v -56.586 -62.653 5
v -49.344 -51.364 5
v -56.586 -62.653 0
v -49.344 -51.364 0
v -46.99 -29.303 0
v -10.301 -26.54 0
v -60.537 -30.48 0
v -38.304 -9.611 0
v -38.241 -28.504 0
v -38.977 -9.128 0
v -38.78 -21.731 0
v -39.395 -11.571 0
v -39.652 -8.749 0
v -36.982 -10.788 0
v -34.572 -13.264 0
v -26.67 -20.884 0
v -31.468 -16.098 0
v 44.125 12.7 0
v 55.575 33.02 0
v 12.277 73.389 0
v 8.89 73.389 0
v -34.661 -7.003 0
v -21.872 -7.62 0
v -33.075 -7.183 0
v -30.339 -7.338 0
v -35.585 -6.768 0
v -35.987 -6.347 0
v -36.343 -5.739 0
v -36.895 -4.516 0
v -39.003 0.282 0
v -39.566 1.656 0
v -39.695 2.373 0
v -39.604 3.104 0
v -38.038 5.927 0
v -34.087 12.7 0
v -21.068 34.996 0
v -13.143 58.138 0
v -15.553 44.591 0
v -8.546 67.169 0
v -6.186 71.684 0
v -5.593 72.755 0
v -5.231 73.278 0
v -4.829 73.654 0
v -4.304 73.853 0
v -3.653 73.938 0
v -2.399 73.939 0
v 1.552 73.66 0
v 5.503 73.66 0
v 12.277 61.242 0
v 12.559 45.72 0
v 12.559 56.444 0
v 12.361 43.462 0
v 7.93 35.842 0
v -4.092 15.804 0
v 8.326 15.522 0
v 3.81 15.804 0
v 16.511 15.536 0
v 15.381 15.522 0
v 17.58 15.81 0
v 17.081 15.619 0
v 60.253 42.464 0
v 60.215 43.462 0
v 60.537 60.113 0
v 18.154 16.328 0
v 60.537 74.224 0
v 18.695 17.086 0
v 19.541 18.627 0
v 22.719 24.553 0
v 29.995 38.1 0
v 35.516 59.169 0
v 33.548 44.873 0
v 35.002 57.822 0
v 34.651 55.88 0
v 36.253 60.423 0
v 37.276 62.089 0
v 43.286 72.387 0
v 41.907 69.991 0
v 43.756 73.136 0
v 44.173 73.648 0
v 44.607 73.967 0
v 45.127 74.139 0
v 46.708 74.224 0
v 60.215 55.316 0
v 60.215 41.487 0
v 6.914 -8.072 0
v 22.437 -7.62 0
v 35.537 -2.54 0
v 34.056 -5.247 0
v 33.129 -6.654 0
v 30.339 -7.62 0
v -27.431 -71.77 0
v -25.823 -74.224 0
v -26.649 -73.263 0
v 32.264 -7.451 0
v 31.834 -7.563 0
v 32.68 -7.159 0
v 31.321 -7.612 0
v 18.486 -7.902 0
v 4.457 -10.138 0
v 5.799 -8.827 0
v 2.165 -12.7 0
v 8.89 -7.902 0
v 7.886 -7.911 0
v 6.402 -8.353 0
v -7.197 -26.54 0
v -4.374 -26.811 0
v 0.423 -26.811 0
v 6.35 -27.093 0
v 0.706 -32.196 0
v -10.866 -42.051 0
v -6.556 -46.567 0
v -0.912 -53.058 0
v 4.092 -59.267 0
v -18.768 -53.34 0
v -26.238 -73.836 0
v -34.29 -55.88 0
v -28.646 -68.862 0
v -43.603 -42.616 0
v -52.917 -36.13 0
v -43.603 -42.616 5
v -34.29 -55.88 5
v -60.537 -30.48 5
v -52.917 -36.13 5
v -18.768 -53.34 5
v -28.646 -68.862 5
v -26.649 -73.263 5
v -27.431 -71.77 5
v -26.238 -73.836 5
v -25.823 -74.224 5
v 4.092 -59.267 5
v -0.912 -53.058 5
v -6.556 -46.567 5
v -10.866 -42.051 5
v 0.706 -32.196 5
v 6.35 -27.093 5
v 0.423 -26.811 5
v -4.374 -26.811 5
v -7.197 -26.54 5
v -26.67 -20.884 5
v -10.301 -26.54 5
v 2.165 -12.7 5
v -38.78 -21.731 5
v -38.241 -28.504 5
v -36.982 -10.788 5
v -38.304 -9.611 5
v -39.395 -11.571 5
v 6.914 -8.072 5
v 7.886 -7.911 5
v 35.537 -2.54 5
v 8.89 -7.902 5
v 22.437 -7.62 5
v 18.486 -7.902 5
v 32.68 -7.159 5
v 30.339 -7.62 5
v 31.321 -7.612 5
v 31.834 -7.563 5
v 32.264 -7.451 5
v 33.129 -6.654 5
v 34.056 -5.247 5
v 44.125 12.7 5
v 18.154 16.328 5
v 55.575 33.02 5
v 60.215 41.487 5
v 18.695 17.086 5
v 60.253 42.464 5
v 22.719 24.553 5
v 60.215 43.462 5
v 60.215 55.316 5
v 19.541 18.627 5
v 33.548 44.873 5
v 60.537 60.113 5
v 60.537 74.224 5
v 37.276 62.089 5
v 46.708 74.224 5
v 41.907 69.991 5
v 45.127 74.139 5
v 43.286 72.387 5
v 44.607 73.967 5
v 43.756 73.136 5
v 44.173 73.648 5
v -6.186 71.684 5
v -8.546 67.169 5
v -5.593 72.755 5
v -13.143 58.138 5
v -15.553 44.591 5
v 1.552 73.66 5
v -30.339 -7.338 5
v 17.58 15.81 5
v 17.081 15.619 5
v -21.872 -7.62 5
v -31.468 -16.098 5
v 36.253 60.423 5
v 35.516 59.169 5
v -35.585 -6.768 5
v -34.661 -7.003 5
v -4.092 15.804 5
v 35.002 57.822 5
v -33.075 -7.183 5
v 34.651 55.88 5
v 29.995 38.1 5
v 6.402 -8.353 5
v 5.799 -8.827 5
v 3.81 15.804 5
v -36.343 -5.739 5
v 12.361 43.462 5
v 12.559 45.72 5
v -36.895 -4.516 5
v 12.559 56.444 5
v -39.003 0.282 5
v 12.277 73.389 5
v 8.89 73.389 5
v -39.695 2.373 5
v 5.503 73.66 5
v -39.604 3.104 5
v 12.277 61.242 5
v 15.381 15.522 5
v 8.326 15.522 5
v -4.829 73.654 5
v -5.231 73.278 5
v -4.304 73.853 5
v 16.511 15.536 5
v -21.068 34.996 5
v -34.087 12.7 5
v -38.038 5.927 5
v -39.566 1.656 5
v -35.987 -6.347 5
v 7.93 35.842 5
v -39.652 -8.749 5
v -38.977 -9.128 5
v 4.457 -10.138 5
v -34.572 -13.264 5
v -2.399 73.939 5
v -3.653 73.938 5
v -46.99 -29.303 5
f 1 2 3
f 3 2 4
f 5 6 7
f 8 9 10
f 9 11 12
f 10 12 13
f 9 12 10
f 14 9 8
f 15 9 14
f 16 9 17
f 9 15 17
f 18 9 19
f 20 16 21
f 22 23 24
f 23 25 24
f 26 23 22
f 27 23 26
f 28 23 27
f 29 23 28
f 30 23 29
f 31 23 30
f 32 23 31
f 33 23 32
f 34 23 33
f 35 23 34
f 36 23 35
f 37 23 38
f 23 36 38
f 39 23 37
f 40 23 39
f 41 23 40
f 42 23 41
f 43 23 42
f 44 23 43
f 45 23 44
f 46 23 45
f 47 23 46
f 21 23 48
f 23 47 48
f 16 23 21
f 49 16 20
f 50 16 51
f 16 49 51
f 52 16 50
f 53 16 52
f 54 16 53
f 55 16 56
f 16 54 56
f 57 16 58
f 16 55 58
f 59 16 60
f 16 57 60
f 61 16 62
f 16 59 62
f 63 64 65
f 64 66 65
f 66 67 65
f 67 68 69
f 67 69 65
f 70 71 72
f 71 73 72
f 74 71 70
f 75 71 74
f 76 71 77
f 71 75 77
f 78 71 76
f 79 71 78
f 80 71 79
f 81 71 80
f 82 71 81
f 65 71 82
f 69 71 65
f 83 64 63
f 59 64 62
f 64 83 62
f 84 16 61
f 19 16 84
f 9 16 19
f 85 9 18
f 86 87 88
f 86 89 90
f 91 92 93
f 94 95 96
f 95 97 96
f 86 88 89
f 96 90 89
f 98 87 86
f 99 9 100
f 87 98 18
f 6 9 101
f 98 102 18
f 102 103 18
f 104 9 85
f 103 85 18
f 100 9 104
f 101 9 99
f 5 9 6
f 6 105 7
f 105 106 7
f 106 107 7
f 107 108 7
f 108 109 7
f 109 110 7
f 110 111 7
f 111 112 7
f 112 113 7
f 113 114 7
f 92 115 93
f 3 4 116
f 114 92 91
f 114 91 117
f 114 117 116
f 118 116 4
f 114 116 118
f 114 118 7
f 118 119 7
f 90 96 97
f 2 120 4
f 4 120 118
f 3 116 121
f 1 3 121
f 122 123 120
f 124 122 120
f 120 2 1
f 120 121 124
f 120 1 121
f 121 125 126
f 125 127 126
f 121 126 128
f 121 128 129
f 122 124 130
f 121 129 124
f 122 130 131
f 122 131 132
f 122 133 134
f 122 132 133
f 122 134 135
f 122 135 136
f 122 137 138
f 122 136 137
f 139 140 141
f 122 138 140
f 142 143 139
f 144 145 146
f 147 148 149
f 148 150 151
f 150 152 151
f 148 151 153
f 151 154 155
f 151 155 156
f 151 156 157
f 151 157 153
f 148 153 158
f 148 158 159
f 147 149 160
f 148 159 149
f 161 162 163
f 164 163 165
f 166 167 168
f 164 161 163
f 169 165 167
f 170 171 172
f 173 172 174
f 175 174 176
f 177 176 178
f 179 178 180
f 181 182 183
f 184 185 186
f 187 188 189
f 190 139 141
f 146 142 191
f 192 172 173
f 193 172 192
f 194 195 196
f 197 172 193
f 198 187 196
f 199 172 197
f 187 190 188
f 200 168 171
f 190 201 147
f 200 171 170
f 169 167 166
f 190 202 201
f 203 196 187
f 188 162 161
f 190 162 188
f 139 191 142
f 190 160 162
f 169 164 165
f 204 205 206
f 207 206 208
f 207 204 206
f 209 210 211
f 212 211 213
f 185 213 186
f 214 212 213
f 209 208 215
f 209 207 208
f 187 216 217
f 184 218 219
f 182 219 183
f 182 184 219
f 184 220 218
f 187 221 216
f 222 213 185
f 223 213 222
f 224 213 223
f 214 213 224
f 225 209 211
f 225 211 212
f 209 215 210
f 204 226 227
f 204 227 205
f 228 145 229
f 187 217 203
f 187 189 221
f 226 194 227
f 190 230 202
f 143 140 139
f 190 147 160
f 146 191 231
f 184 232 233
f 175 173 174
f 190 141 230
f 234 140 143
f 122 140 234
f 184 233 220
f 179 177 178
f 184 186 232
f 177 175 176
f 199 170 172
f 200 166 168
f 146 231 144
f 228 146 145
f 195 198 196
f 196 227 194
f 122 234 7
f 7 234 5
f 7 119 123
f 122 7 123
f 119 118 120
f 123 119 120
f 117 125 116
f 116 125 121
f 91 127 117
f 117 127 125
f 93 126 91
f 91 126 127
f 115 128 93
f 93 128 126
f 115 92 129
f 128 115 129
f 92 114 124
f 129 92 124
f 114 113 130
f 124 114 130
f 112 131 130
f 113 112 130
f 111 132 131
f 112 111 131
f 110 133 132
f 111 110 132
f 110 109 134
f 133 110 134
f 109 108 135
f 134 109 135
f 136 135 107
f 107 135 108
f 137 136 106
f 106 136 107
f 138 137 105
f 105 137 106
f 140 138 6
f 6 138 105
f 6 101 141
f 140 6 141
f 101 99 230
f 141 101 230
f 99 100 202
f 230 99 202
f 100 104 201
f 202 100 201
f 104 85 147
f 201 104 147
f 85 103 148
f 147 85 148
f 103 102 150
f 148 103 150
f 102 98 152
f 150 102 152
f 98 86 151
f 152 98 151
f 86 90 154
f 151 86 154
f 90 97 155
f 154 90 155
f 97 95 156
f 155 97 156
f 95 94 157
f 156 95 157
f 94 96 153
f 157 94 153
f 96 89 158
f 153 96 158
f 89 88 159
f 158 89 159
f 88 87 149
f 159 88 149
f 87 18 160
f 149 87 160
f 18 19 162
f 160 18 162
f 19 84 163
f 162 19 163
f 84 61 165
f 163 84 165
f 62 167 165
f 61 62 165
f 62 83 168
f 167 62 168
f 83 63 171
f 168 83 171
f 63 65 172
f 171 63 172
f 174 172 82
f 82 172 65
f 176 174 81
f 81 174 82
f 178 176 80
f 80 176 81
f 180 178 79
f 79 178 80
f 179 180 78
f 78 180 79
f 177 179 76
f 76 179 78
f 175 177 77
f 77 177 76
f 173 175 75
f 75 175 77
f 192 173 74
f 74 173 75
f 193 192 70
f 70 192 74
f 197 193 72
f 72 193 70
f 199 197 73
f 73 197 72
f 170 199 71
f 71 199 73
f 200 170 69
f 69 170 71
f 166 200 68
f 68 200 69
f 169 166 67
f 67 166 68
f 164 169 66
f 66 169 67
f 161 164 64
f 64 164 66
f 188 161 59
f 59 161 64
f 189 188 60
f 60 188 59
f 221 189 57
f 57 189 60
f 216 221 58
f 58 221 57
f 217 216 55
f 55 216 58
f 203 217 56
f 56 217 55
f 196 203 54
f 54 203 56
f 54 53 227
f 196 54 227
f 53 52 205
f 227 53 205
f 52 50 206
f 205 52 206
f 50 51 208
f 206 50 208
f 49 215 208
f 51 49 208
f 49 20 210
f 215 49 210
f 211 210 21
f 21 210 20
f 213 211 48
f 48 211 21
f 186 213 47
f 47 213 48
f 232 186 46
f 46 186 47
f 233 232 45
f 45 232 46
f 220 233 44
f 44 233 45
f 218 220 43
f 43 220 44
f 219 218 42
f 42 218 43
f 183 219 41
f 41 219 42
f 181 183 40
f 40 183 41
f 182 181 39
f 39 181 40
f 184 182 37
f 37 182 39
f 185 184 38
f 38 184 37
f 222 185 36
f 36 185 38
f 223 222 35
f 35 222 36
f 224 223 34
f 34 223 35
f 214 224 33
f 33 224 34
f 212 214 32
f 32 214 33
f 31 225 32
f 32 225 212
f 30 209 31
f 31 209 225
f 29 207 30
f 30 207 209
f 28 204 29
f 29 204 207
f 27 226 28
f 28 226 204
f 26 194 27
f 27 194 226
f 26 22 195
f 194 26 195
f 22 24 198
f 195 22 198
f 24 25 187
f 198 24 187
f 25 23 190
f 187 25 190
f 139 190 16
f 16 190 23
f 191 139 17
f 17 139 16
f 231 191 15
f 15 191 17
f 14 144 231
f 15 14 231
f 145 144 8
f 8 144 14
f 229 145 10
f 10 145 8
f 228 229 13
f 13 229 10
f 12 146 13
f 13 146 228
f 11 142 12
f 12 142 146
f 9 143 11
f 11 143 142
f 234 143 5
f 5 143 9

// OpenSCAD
// Module names are of the form poly_<inkscape-path-id>().  As a result,
// you can associate a polygon in this OpenSCAD program with the corresponding
// SVG element in the Inkscape document by looking for the XML element with
// the attribute id="inkscape-path-id".

spurs(height=5);

module spurs(height)
{
  scale([25.4/90, -25.4/90, 1]) union()
  {
    linear_extrude(height=height)
      polygon([[13.500000,-56.000000],[29.500000,-55.000000],[54.500000,-55.000000],[58.503750,-55.048750],[60.522969,-55.341719],[62.290000,-56.020000],[64.325156,-57.853594],[66.241250,-60.541250],[69.240000,-66.000000],[80.500000,-87.000000],[106.280000,-135.000000],[118.870000,-159.000000],[122.780000,-198.000000],[124.023594,-204.882813],[125.843750,-209.652500],[128.457031,-214.095937],[132.080000,-220.000000],[148.490000,-248.000000],[153.376719,-256.487656],[155.041895,-259.143652],[156.518750,-260.956250],[158.055137,-262.086816],[159.898906,-262.696719],[165.500000,-263.000000],[214.500000,-263.000000],[214.500000,-213.000000],[213.360000,-196.000000],[213.360000,-154.000000],[213.495000,-150.462500],[213.360000,-147.000000],[196.920000,-117.000000],[156.350000,-45.000000],[125.920000,9.000000],[120.671250,18.592500],[117.385469,23.577187],[115.794199,25.366055],[114.320000,26.400000],[112.797344,26.797500],[110.981250,26.970000],[107.500000,27.000000],[79.500000,27.000000],[65.500000,28.000000],[31.500000,28.000000],[27.943750,28.030000],[24.500000,28.600000],[22.684180,29.597539],[20.548438,31.277812],[15.792500,35.922500],[7.670000,45.000000],[-36.500000,94.040000],[-25.500000,94.040000],[-15.500000,95.000000],[1.500000,95.000000],[22.500000,96.000000],[2.500000,114.080000],[-38.500000,149.000000],[-23.230000,165.000000],[-3.230000,188.000000],[14.500000,210.000000],[-66.500000,189.000000],[-91.500000,263.000000],[-92.970664,261.624141],[-94.426562,259.592500],[-97.197500,254.302500],[-101.500000,244.000000],[-121.500000,198.000000],[-200.500000,222.000000],[-174.840000,182.000000],[-154.500000,151.000000],[-187.500000,128.020000],[-214.500000,108.000000],[-166.500000,103.830000],[-135.500000,101.000000],[-137.410000,77.000000],[-139.590000,41.000000],[-140.500000,31.000000],[-138.108496,32.343340],[-135.722969,34.055469],[-131.038750,38.223750],[-122.500000,47.000000],[-111.500000,57.040000],[-94.500000,74.000000],[-77.500000,27.000000],[-107.500000,26.000000],[-117.196250,25.451250],[-122.812656,24.814531],[-126.090000,23.980000],[-127.513906,22.488438],[-128.773750,20.335000],[-130.730000,16.000000],[-138.200000,-1.000000],[-140.195000,-5.868750],[-140.649688,-8.406719],[-140.330000,-11.000000],[-134.780000,-21.000000],[-120.780000,-45.000000],[-74.650000,-124.000000],[-55.110000,-158.000000],[-46.570000,-206.000000],[-30.280000,-238.000000],[-21.920000,-254.000000],[-19.818750,-257.793750],[-18.535156,-259.646094],[-17.110000,-260.980000],[-15.251406,-261.684844],[-12.943750,-261.983750],[-8.500000,-261.990000],[5.500000,-261.000000],[19.500000,-261.000000],[31.500000,-260.040000],[43.500000,-260.040000],[43.500000,-217.000000],[44.500000,-200.000000],[44.500000,-162.000000],[43.800000,-154.000000],[28.100000,-127.000000],[-14.500000,-56.000000],[13.500000,-56.000000]]);
  }
}
